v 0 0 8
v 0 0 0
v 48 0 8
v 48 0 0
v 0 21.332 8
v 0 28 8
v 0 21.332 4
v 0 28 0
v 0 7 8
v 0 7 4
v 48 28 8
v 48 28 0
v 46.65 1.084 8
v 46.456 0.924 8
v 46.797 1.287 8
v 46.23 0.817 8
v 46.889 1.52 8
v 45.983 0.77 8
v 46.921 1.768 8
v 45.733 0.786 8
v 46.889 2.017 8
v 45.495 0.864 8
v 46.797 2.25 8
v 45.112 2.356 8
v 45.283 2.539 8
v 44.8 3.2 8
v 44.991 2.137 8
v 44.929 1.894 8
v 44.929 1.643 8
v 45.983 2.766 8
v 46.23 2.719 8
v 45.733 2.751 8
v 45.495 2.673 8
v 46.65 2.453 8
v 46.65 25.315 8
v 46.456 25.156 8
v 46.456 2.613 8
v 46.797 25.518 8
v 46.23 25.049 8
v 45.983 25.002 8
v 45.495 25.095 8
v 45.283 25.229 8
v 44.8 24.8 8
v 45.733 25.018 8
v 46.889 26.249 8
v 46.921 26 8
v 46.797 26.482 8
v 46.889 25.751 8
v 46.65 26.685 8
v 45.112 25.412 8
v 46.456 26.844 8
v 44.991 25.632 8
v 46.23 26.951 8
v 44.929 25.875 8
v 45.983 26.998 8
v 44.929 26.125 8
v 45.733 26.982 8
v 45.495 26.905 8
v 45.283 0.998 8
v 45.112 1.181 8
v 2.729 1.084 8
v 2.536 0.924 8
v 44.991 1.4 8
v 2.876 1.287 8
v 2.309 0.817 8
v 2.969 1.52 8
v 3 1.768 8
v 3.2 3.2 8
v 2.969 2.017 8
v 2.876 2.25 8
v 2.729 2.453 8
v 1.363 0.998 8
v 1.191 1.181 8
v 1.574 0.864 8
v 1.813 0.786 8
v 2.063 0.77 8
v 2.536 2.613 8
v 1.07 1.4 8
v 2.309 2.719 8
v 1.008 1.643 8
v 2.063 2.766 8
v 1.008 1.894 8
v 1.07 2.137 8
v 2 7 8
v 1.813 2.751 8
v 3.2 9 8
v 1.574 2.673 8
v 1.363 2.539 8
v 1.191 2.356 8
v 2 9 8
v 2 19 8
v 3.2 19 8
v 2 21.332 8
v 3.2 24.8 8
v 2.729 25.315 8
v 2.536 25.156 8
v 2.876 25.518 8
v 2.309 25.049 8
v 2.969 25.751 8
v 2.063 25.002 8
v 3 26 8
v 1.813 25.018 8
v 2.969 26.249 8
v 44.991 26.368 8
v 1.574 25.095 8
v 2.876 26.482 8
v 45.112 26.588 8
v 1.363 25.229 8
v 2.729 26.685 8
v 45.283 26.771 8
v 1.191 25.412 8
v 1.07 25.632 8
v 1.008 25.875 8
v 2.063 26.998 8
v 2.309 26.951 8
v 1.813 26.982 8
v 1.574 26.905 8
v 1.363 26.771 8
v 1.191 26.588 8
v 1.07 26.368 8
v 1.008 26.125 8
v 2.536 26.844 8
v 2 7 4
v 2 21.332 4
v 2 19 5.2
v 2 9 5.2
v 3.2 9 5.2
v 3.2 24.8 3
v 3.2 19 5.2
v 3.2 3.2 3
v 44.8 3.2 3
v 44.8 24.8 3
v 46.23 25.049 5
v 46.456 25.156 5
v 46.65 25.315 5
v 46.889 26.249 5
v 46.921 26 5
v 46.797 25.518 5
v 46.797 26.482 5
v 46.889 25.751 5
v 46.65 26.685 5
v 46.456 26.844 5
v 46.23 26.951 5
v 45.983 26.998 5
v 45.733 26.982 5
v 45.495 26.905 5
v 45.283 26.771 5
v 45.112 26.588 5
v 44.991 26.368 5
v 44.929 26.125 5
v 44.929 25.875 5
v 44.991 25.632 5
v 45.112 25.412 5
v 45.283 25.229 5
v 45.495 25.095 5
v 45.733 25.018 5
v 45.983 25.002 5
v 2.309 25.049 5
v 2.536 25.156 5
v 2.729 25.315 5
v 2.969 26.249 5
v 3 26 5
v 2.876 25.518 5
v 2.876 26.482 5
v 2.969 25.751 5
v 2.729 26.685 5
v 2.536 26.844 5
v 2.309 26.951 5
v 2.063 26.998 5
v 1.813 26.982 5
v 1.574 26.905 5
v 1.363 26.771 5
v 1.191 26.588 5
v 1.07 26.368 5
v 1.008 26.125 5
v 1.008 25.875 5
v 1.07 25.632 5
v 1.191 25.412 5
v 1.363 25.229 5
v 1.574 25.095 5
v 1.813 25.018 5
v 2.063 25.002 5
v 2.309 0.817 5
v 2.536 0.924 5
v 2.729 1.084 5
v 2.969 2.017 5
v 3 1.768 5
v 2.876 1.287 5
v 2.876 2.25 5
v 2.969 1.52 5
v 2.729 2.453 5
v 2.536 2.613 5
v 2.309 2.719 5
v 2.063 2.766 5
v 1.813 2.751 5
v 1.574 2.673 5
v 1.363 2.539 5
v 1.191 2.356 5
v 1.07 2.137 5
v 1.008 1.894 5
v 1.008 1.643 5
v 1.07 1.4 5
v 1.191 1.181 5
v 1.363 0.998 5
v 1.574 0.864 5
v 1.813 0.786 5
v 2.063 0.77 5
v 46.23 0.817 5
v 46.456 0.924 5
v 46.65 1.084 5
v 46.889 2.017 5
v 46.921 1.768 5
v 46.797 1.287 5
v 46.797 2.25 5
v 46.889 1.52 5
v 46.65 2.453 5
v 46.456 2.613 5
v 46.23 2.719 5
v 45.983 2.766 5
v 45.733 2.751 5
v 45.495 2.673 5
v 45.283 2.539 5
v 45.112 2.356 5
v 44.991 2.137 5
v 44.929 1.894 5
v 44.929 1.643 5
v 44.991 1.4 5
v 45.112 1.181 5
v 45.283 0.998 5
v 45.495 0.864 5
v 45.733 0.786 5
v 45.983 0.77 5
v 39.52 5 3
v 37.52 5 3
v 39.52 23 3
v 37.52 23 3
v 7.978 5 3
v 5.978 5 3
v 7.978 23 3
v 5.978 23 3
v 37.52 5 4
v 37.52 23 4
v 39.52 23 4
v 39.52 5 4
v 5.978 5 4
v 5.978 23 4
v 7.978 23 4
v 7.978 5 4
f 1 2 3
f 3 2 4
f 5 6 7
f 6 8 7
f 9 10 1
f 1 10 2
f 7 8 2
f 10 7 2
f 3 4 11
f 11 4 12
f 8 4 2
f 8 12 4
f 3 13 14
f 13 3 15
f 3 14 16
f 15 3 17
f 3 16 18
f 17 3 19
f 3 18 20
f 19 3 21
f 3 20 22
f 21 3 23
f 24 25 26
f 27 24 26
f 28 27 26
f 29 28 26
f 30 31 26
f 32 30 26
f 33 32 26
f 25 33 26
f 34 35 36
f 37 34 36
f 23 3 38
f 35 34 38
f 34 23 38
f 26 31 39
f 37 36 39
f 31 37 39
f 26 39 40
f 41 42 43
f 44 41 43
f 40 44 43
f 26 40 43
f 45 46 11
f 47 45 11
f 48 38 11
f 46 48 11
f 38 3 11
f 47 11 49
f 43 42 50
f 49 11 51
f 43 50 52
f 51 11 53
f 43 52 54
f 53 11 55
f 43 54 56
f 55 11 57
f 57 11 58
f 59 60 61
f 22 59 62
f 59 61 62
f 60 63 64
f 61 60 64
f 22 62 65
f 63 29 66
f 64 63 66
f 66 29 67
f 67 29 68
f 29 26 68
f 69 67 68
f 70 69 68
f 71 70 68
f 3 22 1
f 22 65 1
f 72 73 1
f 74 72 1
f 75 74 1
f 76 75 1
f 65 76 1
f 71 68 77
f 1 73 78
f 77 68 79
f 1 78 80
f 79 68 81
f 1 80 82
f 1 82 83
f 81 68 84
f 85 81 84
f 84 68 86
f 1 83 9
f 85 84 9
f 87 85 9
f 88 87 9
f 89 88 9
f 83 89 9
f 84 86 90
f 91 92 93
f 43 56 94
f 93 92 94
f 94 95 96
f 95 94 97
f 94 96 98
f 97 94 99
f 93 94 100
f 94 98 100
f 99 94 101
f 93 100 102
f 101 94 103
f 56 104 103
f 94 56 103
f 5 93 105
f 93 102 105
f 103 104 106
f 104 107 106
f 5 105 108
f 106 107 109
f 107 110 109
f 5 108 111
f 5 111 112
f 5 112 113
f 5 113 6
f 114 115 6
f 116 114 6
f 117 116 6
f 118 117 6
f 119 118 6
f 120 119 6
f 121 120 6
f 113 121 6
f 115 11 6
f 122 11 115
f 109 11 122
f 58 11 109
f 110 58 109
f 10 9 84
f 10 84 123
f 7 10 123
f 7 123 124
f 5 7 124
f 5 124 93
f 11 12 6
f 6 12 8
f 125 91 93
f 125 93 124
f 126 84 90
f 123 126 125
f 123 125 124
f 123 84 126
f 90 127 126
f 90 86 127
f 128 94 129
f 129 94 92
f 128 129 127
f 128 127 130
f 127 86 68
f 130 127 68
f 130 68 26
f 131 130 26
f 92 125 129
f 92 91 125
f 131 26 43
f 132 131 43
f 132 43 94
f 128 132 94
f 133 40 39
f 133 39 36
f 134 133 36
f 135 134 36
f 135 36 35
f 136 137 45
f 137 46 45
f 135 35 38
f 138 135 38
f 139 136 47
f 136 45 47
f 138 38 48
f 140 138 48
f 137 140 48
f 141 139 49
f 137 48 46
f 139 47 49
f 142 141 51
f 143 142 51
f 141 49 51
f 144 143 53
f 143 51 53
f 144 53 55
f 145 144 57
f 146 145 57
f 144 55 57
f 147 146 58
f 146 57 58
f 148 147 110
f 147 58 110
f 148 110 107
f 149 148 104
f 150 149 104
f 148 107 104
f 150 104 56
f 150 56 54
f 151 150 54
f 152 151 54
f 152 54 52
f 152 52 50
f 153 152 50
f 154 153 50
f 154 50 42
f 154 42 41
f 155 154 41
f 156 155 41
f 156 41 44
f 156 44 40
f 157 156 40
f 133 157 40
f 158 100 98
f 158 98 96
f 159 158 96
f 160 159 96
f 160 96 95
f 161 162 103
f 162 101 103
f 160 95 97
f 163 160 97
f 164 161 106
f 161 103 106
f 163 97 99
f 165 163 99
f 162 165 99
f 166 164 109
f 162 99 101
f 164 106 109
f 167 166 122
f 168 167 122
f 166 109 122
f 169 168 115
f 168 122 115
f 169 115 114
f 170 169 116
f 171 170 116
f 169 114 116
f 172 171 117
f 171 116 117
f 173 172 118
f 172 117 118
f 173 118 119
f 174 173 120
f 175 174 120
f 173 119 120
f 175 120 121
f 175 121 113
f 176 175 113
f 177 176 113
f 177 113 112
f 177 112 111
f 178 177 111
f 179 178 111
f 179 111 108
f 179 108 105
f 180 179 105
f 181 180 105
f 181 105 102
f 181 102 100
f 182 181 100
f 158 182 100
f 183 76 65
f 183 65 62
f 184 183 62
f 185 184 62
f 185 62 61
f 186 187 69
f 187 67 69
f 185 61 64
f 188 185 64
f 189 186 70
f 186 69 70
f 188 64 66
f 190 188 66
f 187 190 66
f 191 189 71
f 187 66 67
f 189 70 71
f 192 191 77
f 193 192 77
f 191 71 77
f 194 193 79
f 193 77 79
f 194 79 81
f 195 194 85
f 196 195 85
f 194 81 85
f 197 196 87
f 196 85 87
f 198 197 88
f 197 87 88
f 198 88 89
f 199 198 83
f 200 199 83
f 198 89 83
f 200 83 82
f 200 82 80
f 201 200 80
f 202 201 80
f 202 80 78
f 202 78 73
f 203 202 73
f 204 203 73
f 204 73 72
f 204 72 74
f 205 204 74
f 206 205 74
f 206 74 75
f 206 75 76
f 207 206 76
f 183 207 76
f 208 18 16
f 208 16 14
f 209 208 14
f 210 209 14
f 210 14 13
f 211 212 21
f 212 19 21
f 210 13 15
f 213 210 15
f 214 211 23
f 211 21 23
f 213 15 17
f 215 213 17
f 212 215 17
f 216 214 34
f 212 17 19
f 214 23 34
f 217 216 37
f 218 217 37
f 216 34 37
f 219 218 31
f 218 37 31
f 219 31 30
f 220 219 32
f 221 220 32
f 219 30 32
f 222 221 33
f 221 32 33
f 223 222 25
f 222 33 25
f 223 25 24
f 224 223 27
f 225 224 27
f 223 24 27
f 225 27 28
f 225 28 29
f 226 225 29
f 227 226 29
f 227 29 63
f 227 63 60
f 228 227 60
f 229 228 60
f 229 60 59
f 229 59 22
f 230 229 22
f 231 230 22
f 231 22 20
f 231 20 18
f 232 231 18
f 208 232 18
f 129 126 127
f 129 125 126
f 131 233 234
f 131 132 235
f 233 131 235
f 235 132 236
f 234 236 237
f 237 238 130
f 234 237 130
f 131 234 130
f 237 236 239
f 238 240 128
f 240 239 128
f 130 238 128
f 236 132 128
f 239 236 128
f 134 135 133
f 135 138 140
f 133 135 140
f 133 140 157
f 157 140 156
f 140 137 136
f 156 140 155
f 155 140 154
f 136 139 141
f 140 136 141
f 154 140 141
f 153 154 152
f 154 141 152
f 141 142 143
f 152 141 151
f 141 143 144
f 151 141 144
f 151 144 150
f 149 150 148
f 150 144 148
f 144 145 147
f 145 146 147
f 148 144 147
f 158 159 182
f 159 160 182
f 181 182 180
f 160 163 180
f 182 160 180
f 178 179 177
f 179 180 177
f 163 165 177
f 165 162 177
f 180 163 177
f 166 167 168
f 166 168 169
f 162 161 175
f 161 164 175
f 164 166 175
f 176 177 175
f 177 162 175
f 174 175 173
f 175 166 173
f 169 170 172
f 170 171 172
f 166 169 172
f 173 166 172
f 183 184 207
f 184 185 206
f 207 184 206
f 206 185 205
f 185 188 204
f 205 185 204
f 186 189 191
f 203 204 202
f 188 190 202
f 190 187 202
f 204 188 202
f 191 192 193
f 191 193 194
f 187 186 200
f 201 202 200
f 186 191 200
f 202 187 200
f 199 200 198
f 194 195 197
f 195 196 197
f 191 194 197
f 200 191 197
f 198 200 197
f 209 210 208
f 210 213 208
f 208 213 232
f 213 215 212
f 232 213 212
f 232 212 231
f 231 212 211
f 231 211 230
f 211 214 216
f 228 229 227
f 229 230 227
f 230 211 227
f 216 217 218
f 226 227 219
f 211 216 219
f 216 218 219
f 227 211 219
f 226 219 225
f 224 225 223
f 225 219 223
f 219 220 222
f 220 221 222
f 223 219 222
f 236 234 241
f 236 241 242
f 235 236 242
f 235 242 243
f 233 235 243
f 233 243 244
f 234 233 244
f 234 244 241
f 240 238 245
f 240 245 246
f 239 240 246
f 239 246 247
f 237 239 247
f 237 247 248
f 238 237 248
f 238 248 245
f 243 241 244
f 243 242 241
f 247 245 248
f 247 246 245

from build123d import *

# Parameters (mm, degrees)
SKETCH_W        = 48
SKETCH_H        = 28
PAD_DEPTH       = 8
SKETCH001_W     = 41.6
SKETCH001_H     = 21.6
POCKET_DEPTH    = 5
SKETCH002_W     = 4.279463
SKETCH002_H     = 10
POCKET001_DEPTH = 2.8
SKETCH003_W     = 2
SKETCH003_H     = 18
PAD001_DEPTH    = 1
SKETCH004_W     = 14.332329
SKETCH004_H     = 4
POCKET002_DEPTH = 2
SKETCH005_R     = 1
POCKET003_DEPTH = 3


with BuildPart() as part:
    # Sketch → Pad (new body)
    with BuildSketch(Plane.XY):
        with Locations((24, 14)):
            Rectangle(SKETCH_W, SKETCH_H)
    extrude(amount=PAD_DEPTH)

    # Sketch001 → Pocket (cut)
    with BuildSketch(Plane.XY.offset(8)):
        with Locations((24, 14)):
            Rectangle(SKETCH001_W, SKETCH001_H)
    extrude(amount=-POCKET_DEPTH, mode=Mode.SUBTRACT)

    # Sketch002 → Pocket001 (cut)
    with BuildSketch(Plane.XY.offset(8)):
        with Locations((2.139731, 14)):
            Rectangle(SKETCH002_W, SKETCH002_H)
    extrude(amount=-POCKET001_DEPTH, mode=Mode.SUBTRACT)

    # Sketch003 → Pad001 (new body)
    with BuildSketch(Plane.XY.offset(3)):
        with Locations((6.978305, 14)):
            Rectangle(SKETCH003_W, SKETCH003_H)
        with Locations((38.519785, 14)):
            Rectangle(SKETCH003_W, SKETCH003_H)
    extrude(amount=PAD001_DEPTH)

    # Sketch004 → Pocket002 (cut)
    with BuildSketch(Plane(origin=(0, 0, 0), x_dir=(0, -1, 0), z_dir=(-1, 0, 0))):
        with Locations((-14.166164, 6)):
            Rectangle(SKETCH004_W, SKETCH004_H)
    extrude(amount=-POCKET002_DEPTH, mode=Mode.SUBTRACT)

    # Sketch005 → Pocket003 (cut)
    with BuildSketch(Plane.XY.offset(8)):
        with Locations((2, 26)):
            Circle(SKETCH005_R)
        with Locations((2, 1.768416)):
            Circle(SKETCH005_R)
        with Locations((45.92067, 1.768416)):
            Circle(SKETCH005_R)
        with Locations((45.92067, 26)):
            Circle(SKETCH005_R)
    extrude(amount=-POCKET003_DEPTH, mode=Mode.SUBTRACT)


solid = part.part
